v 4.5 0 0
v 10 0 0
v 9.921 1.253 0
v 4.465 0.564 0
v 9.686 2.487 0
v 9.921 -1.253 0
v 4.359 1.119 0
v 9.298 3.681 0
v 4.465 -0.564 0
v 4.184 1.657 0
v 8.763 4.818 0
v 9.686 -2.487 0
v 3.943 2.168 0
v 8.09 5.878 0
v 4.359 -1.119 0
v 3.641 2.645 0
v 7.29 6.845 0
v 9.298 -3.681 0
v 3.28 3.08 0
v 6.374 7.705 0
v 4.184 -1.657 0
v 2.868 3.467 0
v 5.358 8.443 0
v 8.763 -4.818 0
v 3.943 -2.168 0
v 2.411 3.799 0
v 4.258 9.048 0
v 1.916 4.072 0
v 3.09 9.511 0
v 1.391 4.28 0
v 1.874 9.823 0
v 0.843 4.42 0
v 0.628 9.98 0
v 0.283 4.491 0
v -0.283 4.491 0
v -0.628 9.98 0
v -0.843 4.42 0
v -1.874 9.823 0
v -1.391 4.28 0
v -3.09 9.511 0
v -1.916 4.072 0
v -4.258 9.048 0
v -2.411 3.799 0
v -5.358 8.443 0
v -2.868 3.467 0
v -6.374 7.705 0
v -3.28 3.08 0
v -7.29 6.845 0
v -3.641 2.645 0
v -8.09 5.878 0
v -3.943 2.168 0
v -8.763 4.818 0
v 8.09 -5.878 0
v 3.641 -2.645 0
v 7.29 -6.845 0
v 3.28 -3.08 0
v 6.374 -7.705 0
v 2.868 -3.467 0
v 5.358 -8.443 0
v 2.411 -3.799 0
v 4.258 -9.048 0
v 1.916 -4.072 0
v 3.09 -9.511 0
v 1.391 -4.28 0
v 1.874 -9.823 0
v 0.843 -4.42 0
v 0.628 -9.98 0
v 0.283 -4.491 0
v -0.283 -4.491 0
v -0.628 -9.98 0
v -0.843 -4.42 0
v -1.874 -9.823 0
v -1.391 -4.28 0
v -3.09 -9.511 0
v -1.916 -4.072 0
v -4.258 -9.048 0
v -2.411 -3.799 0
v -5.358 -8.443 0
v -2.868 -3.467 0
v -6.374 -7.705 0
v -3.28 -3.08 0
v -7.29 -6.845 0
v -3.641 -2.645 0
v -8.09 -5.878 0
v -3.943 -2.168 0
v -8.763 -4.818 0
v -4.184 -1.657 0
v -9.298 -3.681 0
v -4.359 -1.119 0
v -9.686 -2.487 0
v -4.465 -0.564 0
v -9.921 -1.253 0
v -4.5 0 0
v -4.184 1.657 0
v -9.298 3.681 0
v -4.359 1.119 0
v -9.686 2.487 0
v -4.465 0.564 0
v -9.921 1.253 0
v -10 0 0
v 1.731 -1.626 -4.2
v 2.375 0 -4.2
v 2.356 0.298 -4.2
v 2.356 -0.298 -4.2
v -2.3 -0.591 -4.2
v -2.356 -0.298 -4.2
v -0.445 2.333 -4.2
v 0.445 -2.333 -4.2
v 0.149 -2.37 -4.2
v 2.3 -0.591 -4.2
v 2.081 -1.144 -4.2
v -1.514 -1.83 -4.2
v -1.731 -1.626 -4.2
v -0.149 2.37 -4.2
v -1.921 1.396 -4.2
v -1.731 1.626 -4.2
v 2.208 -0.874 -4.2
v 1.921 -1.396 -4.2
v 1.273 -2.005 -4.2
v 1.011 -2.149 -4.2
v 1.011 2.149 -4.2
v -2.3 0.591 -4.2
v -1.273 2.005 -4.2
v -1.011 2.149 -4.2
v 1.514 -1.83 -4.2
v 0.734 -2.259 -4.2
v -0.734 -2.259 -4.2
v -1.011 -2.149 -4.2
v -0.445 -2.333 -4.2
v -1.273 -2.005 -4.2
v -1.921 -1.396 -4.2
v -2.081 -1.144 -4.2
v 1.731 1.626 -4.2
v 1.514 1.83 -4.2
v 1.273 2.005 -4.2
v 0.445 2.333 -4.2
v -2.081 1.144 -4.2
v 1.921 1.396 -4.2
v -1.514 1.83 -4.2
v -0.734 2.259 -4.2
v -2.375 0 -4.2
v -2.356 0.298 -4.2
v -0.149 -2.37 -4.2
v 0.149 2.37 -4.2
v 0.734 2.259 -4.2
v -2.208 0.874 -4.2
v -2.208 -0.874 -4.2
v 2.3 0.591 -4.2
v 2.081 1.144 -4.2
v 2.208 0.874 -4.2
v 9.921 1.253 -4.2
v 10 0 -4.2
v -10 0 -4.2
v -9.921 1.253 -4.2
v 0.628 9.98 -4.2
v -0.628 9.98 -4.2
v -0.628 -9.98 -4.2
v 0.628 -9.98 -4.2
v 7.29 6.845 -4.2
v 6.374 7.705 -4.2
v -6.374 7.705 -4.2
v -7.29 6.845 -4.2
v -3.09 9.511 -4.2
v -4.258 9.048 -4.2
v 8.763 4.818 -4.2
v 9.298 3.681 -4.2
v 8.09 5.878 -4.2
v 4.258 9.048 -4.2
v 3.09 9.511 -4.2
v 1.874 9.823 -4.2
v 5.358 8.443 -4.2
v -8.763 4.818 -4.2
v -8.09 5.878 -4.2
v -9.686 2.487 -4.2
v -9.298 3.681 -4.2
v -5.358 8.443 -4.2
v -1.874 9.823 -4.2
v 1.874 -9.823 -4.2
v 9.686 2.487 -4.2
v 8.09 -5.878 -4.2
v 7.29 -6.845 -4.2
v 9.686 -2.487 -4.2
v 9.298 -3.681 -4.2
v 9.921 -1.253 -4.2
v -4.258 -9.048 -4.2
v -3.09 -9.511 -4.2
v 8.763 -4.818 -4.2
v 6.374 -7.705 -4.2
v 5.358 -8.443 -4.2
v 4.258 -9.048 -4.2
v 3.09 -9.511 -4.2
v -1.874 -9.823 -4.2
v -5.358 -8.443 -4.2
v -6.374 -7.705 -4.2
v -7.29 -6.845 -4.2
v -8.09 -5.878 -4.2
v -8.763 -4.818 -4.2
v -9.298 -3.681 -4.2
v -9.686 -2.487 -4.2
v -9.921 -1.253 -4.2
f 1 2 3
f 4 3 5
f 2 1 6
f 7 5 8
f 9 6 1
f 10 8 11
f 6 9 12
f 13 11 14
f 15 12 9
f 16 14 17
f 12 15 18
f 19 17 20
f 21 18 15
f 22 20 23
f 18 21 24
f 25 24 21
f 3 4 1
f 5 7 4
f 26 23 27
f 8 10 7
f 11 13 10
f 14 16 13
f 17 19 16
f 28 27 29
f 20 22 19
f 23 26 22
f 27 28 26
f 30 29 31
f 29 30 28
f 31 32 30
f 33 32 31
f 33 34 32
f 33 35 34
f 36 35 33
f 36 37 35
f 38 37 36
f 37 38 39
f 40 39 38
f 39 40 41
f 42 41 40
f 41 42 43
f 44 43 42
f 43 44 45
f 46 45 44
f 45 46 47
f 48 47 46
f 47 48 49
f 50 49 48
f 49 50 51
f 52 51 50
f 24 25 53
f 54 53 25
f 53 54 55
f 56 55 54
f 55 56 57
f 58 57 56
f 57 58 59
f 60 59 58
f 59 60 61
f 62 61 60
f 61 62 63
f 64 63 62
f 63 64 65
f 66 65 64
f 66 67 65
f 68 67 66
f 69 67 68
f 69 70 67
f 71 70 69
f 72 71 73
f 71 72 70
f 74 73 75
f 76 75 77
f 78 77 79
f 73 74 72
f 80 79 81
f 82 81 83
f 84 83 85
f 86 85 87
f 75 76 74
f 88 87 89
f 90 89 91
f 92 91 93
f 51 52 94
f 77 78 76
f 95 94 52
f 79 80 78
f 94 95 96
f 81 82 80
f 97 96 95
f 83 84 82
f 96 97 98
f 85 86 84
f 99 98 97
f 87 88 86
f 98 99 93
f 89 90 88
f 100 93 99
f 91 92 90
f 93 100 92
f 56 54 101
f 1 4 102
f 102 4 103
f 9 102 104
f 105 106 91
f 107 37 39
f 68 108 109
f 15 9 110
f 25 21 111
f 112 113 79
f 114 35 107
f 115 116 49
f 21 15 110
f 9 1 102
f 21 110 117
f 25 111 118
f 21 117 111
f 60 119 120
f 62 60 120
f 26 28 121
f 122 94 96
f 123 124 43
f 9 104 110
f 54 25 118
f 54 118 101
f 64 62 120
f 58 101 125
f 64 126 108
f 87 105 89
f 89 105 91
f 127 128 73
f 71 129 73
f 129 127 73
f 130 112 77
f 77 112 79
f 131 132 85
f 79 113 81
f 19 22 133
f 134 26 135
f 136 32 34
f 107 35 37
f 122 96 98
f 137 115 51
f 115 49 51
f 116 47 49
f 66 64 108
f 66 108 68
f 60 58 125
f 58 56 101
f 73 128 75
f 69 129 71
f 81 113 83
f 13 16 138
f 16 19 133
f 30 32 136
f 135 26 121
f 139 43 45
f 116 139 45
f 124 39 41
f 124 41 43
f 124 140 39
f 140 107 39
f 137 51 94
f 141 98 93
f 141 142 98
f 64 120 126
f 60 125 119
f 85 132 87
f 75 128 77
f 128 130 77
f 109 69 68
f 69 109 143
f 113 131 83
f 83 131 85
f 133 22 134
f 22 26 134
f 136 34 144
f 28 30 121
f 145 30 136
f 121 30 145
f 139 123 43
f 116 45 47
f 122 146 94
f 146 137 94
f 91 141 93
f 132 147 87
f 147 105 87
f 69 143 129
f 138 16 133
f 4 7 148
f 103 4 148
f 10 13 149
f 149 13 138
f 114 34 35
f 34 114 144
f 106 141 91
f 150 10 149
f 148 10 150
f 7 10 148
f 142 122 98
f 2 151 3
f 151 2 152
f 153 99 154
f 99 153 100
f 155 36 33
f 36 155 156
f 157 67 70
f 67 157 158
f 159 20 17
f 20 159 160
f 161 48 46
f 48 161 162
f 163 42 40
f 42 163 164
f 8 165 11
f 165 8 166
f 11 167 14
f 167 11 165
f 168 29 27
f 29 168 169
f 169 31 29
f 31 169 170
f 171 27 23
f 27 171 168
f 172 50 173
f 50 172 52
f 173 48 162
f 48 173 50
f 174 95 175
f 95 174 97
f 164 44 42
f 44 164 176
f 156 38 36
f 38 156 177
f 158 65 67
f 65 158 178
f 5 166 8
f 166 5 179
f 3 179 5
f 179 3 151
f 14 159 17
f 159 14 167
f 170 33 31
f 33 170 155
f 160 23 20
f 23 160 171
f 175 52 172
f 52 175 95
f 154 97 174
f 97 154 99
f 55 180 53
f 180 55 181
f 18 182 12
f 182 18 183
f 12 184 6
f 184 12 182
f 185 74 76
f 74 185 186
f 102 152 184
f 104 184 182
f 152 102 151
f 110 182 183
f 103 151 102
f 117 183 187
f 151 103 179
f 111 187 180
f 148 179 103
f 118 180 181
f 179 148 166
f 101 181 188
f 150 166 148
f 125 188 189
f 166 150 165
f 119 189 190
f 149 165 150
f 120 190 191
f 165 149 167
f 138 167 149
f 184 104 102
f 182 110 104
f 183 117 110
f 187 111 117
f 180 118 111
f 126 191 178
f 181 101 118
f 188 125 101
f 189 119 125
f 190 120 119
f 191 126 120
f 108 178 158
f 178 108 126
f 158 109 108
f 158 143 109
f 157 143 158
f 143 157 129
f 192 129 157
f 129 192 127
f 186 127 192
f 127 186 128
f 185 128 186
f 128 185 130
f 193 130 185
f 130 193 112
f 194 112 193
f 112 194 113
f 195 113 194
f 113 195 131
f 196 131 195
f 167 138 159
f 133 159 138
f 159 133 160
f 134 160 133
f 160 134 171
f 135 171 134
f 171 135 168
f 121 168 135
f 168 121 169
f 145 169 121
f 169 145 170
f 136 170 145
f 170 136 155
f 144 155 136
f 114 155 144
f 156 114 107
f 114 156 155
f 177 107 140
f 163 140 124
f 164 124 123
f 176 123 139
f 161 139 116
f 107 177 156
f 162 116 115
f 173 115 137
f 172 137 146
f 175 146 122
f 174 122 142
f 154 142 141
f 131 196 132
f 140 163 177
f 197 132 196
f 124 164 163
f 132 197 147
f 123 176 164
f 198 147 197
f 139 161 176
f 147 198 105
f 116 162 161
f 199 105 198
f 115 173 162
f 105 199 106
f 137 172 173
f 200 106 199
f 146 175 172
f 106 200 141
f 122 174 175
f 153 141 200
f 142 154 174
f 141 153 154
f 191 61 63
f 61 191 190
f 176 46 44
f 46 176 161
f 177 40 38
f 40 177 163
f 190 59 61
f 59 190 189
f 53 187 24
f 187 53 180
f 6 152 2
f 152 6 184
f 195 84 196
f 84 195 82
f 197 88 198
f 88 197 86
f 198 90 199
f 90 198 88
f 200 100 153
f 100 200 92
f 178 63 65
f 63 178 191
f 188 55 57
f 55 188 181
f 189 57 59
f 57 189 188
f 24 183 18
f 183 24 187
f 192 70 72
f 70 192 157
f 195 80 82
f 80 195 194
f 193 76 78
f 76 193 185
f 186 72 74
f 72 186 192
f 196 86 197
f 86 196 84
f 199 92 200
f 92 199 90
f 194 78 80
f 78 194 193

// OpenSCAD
$fn = 50;


difference() {
	union() {
		translate(v = [0, 0, -4.2000000000]) {
			cylinder(h = 4.2000000000, r = 10.0000000000);
		}
	}
	union() {
		translate(v = [0, 0, 0]) {
			rotate(a = [0, 0, 0]) {
				difference() {
					union() {
						translate(v = [0, 0, -7.2000000000]) {
							cylinder(h = 7.2000000000, r = 2.2500000000);
						}
						translate(v = [0, 0, -4.2000000000]) {
							cylinder(h = 4.2000000000, r1 = 2.3750000000, r2 = 4.5000000000);
						}
						translate(v = [0, 0, -7.2000000000]) {
							cylinder(h = 7.2000000000, r = 2.3750000000);
						}
						translate(v = [0, 0, -7.2000000000]) {
							cylinder(h = 7.2000000000, r = 2.2500000000);
						}
					}
					union();
				}
			}
		}
	}
}
